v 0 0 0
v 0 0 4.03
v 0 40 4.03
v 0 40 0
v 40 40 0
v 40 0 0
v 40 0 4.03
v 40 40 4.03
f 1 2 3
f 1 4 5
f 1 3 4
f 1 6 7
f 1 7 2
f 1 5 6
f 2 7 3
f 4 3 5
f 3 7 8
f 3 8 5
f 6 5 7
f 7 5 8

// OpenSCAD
/* Warning, this is a very basic generator with a lot of approximation 
input data : [BBGA, 6ZC, 40x40x4.03mm, 1467, , A, C04-25081A]
generated by com.zoubworld.electronics.cad.model3d.Basic
Date : Sun Feb 15 10:50:49 CET 2026
*/

//body
color("black")
translate([0,0,0])
cube([40.0,40.0,4.03], center=false);
